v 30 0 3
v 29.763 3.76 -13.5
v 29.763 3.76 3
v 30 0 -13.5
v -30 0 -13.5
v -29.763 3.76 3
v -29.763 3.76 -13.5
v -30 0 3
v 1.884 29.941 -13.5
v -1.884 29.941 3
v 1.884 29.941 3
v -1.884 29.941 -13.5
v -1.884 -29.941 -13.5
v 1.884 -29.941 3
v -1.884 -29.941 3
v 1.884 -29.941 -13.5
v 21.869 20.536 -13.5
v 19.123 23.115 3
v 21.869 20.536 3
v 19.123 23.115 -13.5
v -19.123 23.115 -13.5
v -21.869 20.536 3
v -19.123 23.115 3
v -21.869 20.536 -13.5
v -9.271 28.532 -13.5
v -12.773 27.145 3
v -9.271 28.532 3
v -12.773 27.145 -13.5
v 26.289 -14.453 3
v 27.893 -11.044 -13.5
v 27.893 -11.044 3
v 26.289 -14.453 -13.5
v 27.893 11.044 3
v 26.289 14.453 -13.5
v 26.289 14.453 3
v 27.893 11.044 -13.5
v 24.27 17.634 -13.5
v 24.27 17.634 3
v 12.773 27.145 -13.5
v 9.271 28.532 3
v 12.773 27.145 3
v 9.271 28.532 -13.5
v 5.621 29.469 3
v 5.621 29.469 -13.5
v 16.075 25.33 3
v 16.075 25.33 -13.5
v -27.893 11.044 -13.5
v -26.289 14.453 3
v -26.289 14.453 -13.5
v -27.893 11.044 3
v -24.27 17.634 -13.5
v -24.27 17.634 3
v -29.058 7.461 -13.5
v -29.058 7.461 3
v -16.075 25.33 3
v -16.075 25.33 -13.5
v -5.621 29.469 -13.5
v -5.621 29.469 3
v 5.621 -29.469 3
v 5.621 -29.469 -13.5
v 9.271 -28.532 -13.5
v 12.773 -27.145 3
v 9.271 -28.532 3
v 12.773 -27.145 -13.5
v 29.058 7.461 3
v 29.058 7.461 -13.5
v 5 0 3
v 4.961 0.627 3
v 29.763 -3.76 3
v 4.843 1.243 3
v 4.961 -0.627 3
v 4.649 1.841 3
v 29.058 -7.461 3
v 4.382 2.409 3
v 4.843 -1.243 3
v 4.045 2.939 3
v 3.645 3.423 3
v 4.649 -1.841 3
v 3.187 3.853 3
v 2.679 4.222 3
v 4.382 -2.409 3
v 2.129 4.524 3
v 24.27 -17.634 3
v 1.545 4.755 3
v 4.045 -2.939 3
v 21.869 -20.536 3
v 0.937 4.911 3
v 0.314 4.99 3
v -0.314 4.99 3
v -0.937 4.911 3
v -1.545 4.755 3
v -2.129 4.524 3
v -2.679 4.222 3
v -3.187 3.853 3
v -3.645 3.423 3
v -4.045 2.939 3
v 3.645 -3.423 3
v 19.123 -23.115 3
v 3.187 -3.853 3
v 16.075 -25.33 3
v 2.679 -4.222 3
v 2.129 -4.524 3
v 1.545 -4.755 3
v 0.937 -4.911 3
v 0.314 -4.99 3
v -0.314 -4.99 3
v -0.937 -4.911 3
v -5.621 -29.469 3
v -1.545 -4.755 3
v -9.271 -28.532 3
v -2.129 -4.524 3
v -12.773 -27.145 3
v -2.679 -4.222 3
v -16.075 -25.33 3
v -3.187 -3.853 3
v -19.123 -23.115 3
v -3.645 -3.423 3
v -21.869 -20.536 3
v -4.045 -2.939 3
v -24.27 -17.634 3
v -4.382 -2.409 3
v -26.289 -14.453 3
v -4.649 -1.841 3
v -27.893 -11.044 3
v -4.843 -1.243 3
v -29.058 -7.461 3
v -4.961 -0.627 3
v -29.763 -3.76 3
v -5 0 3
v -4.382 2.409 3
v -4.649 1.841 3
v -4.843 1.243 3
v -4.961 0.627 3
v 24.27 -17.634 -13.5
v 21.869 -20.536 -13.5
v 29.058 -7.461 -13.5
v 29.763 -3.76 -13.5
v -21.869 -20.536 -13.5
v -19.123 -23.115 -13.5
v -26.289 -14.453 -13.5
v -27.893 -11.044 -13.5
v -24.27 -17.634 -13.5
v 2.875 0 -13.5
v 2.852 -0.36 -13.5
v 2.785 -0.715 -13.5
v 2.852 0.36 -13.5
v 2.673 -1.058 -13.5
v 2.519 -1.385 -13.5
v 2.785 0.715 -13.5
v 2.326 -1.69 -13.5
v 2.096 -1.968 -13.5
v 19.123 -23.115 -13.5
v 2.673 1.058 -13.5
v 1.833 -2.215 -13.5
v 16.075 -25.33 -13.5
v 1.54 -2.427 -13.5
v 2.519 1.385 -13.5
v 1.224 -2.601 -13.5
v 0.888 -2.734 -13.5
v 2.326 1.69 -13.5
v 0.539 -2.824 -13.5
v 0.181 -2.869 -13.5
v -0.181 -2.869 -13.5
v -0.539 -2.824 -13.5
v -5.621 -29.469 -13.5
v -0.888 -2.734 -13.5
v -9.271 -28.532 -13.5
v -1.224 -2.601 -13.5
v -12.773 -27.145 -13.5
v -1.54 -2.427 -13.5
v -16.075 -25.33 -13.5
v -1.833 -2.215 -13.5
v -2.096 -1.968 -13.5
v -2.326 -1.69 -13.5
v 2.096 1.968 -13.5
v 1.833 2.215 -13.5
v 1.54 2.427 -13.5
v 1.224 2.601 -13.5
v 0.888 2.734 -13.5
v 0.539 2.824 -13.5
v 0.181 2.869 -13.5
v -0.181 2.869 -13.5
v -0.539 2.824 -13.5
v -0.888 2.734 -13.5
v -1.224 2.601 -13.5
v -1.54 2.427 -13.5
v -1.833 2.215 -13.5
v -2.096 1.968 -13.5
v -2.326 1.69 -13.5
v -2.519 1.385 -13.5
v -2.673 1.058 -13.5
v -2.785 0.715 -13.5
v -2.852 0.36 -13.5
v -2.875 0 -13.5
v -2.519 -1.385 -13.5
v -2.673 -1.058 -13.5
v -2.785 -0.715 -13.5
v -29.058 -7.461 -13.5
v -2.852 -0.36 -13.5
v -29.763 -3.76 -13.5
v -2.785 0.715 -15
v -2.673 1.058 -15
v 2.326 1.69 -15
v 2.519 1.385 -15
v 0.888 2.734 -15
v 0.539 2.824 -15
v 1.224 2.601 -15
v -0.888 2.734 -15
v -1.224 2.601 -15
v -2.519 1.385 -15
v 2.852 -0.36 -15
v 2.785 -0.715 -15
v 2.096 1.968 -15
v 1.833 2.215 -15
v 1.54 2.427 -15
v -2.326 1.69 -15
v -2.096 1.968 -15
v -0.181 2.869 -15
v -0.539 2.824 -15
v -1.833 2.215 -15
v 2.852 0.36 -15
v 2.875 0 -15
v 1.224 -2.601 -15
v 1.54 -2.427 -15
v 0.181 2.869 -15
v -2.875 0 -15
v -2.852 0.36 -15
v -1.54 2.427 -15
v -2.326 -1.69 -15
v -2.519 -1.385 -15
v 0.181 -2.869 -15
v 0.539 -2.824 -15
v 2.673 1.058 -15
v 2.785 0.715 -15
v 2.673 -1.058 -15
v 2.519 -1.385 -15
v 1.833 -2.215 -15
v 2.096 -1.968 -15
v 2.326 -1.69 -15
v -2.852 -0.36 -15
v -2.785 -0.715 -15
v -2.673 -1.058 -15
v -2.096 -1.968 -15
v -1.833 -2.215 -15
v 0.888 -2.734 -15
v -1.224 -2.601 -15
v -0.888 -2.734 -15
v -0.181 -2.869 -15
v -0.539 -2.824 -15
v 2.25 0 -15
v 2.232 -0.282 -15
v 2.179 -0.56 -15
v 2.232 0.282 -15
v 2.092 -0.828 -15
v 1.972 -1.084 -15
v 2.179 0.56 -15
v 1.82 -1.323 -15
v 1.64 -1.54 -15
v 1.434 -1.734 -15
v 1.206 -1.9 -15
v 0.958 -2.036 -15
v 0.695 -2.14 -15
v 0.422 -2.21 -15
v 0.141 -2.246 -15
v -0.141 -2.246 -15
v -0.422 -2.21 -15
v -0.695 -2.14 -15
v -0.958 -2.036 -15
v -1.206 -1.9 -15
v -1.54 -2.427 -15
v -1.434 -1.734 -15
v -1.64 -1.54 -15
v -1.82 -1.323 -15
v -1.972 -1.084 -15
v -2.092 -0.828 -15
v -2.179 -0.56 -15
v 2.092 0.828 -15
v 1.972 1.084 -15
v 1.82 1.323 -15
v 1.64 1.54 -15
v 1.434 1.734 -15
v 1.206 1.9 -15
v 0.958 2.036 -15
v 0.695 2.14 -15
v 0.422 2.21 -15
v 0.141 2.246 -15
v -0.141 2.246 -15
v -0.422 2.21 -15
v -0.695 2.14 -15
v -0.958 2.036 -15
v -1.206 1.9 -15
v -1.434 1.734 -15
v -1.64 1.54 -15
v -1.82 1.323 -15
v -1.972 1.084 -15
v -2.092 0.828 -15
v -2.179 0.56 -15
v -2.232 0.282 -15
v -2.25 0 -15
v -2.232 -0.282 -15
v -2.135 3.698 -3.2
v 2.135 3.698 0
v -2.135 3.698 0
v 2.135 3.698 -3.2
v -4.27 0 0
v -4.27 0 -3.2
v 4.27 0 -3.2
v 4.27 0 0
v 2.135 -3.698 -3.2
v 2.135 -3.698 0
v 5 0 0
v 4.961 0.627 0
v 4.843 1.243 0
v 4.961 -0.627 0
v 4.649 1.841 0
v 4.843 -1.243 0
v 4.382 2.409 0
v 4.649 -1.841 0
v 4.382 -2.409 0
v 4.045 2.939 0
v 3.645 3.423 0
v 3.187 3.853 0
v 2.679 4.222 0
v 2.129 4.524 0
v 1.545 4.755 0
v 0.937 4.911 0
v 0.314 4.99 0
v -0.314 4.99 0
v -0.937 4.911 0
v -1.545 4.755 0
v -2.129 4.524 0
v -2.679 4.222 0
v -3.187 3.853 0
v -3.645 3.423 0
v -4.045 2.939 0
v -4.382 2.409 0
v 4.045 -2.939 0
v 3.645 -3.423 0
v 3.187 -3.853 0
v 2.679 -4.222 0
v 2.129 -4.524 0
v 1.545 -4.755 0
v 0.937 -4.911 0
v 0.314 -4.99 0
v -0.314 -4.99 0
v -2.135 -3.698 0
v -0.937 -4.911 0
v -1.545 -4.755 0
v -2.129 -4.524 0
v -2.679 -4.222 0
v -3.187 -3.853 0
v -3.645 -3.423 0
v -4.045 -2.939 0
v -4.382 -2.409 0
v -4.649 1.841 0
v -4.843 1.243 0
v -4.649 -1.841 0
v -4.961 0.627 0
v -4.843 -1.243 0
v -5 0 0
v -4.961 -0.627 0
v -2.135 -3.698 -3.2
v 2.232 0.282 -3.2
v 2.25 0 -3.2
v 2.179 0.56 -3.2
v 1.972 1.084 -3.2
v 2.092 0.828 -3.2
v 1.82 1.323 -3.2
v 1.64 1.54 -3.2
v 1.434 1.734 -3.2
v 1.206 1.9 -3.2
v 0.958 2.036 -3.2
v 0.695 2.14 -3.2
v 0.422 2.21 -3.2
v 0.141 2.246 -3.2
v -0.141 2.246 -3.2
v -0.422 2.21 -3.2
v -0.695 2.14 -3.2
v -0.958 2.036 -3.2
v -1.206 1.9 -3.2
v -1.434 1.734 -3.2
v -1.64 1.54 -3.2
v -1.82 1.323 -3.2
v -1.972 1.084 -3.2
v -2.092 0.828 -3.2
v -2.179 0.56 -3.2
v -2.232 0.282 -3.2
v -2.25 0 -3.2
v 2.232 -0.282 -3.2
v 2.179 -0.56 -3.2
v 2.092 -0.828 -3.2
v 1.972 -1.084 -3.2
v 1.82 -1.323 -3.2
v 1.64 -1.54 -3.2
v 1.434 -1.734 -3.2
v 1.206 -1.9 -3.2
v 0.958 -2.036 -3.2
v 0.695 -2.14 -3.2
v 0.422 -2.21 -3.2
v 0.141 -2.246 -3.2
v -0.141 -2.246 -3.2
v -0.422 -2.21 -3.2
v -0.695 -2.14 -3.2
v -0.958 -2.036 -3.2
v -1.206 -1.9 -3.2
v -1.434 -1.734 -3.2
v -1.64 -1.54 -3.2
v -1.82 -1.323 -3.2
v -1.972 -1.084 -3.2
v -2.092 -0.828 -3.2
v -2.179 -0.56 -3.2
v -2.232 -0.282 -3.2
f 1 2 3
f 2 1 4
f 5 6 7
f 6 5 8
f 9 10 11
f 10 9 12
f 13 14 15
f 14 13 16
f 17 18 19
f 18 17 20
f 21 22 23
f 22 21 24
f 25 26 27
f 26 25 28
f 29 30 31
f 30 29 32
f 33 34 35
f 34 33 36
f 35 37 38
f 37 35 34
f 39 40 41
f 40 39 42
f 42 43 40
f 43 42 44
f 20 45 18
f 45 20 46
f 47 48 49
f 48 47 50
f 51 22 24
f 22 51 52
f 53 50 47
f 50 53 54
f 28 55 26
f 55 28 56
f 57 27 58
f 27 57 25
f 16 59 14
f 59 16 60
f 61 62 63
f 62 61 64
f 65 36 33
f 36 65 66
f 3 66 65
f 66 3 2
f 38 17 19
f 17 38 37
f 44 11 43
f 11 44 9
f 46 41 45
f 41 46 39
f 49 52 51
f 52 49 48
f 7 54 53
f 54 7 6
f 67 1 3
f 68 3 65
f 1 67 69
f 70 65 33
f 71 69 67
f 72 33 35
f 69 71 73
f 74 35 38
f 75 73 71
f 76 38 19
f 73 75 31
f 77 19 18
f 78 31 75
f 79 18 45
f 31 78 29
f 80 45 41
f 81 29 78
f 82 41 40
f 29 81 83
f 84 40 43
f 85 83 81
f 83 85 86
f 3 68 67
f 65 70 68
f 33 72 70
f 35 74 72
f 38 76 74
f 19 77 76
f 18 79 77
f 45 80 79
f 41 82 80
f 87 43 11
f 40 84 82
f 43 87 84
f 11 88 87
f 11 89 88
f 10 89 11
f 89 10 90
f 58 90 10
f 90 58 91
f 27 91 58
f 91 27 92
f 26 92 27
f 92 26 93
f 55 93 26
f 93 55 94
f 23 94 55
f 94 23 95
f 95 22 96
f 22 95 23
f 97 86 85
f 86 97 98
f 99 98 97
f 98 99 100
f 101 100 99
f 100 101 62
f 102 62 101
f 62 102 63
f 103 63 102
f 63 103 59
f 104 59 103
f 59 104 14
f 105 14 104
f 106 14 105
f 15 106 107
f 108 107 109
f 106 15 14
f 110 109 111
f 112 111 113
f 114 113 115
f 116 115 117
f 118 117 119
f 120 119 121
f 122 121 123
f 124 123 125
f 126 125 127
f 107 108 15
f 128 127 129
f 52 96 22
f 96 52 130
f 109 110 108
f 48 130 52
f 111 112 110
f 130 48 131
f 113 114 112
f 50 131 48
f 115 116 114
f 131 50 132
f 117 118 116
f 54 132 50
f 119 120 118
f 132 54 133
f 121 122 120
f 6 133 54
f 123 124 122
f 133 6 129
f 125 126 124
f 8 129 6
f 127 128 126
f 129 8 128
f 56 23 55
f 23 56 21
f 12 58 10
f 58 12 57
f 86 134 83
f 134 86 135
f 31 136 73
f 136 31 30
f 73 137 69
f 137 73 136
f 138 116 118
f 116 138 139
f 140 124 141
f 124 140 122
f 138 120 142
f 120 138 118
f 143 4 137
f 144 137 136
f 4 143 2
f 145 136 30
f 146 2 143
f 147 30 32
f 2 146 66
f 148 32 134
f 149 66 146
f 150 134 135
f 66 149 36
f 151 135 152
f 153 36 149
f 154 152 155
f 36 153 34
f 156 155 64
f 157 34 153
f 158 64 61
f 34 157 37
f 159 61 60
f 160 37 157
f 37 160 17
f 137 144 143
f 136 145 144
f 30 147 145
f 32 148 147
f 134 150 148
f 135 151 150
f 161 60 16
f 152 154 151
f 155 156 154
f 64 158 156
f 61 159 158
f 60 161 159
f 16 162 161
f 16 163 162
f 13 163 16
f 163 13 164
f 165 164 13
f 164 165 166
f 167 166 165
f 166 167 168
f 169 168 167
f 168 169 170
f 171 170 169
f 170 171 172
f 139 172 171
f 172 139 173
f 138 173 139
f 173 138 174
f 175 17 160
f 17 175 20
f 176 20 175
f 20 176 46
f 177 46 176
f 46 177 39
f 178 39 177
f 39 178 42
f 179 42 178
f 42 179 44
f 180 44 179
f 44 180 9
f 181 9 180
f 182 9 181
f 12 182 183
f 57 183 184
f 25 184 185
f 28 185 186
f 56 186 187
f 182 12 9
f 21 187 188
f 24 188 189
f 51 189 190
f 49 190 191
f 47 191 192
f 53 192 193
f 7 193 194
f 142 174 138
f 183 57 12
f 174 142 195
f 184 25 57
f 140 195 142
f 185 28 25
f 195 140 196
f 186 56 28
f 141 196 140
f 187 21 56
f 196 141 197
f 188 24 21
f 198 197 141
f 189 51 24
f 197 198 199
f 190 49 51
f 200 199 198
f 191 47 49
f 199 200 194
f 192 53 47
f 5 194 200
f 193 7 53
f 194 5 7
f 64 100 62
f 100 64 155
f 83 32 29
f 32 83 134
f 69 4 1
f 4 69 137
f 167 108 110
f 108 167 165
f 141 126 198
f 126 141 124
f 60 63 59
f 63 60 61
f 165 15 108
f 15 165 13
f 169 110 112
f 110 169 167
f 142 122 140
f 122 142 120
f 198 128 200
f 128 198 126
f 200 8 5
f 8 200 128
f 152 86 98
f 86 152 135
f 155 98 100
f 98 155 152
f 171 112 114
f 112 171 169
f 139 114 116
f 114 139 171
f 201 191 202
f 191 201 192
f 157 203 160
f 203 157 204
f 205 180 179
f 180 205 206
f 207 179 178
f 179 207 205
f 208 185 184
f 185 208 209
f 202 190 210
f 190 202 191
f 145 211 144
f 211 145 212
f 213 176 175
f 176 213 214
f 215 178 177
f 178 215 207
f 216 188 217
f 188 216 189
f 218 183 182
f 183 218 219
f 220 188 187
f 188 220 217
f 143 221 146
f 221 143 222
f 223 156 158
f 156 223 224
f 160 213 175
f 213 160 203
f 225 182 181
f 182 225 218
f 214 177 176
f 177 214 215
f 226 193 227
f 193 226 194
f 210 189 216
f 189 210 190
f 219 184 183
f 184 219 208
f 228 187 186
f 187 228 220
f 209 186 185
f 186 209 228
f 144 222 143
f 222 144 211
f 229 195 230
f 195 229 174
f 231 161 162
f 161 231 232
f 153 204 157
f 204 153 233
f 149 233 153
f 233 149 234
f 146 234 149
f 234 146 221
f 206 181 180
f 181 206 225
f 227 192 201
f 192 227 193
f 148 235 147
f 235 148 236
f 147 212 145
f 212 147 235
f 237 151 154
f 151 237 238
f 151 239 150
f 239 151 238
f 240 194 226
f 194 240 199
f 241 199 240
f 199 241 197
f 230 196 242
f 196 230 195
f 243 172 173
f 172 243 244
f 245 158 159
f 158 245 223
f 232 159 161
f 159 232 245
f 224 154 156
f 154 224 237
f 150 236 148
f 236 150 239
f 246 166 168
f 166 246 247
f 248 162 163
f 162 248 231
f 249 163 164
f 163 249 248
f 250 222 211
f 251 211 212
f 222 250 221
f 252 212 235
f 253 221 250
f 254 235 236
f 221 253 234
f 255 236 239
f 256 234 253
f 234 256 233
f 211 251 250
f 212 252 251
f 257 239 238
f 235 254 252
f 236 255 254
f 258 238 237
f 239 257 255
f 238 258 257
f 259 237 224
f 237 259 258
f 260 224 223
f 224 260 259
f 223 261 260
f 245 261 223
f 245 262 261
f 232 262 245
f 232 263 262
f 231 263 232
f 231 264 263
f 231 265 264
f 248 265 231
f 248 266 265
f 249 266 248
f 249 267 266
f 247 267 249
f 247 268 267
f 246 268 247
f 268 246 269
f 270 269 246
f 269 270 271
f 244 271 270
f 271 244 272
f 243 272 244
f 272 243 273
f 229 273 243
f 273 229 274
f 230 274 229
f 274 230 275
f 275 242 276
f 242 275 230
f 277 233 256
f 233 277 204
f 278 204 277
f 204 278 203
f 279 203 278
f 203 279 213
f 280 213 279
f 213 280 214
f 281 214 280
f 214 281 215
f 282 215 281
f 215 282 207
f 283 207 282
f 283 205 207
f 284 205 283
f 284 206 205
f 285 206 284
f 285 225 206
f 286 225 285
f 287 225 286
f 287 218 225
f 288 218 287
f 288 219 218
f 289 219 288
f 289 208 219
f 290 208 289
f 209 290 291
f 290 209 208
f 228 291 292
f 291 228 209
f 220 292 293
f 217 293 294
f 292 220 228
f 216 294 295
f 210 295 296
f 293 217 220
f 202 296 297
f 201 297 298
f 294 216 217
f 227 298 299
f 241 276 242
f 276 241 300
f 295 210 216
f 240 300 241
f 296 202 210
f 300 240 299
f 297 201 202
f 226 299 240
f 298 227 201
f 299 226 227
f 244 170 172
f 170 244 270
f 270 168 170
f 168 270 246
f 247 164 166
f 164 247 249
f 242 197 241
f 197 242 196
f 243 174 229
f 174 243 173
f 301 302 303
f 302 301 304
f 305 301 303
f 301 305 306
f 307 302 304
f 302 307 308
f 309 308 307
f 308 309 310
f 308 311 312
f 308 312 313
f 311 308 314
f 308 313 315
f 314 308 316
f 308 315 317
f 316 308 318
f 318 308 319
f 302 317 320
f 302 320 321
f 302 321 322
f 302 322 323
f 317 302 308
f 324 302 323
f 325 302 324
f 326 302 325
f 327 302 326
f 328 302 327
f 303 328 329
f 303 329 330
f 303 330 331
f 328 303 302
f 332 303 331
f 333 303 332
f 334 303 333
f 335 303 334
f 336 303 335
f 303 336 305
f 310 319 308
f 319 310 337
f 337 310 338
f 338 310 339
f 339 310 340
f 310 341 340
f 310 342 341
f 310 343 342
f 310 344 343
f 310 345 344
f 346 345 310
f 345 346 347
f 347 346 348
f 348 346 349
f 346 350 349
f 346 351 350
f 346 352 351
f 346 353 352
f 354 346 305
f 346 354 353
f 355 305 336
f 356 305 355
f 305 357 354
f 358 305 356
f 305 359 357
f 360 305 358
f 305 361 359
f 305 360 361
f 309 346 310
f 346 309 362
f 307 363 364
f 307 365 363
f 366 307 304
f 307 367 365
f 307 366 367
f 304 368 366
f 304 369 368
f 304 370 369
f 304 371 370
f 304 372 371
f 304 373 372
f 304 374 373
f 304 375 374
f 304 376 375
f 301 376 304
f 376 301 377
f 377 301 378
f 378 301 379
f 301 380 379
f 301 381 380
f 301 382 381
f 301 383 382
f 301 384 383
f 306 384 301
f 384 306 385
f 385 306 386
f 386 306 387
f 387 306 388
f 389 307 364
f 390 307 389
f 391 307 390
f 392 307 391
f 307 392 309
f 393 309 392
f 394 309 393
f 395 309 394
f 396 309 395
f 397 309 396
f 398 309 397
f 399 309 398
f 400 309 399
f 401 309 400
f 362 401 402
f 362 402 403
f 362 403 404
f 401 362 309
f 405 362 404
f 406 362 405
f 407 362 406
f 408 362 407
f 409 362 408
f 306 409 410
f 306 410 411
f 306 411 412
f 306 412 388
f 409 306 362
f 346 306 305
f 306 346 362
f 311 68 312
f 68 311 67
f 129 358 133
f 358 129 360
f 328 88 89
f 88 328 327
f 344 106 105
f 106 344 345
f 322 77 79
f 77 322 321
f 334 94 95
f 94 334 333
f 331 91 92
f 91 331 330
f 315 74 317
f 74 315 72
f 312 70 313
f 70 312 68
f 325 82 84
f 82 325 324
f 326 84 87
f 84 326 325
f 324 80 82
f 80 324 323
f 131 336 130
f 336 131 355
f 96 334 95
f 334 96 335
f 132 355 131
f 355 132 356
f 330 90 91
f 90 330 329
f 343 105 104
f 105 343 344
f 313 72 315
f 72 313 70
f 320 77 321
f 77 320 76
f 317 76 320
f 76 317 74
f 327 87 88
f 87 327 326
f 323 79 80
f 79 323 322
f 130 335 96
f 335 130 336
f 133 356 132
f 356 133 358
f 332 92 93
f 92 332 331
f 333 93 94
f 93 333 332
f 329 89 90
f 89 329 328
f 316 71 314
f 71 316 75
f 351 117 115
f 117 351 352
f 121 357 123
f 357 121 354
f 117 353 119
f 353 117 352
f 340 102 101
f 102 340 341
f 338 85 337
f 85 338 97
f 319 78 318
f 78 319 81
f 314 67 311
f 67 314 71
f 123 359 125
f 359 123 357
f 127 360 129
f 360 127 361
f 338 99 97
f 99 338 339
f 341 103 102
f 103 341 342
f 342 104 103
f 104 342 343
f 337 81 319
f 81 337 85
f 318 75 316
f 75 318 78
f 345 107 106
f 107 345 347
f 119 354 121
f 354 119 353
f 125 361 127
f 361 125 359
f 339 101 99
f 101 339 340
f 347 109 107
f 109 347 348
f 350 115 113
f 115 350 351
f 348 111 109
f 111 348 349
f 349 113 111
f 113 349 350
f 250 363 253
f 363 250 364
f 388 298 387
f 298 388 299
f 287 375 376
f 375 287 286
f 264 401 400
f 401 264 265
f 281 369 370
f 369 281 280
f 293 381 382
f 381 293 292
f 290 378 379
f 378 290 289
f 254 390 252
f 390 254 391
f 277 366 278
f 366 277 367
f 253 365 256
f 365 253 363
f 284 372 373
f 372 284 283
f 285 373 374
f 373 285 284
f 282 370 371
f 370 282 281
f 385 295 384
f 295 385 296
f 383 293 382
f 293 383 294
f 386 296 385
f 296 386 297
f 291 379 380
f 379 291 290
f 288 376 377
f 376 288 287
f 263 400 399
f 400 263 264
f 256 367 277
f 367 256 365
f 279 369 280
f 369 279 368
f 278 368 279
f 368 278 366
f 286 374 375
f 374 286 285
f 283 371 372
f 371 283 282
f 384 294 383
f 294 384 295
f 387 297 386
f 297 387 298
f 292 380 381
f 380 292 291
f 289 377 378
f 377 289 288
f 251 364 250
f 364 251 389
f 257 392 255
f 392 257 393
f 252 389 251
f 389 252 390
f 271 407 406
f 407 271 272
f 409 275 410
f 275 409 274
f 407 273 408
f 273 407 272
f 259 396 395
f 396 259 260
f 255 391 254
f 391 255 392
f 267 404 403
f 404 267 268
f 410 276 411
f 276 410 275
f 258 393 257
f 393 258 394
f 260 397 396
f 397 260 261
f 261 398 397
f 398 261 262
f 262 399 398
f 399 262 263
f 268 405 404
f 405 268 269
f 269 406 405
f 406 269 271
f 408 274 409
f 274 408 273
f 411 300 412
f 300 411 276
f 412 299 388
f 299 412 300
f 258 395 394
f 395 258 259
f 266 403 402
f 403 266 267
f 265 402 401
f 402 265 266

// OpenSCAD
$fn = 50;

difference() {
	union() {
		translate(v = [0, 0, -13.5]) {
			cylinder(h = 16.5, r = 30.0);
		}
		#translate(v = [0, 0, -15.0]) {
			cylinder(h = 15, r = 2.875);
		}
	}
	union() {
		translate(v = [0, 0, 0]) {
			rotate(a = [0, 0, 0]) {
				difference() {
					union() {
						translate(v = [0, 0, -3.2]) {
							linear_extrude(height = 3.2) {
								polygon(points = [[4.2698, 0.0], [2.1349000000000005, 3.697755269078796], [-2.134899999999999, 3.6977552690787965], [-4.2698, 5.228996902999369e-16], [-2.134900000000002, -3.6977552690787956], [2.1348999999999974, -3.697755269078798]]);
							}
						}
					}
					union();
				}
			}
		}
		#cylinder(h = 3, r = 5.0);
		#translate(v = [0, 0, -100.0]) {
			cylinder(h = 200, r = 2.25);
		}
	}
}
